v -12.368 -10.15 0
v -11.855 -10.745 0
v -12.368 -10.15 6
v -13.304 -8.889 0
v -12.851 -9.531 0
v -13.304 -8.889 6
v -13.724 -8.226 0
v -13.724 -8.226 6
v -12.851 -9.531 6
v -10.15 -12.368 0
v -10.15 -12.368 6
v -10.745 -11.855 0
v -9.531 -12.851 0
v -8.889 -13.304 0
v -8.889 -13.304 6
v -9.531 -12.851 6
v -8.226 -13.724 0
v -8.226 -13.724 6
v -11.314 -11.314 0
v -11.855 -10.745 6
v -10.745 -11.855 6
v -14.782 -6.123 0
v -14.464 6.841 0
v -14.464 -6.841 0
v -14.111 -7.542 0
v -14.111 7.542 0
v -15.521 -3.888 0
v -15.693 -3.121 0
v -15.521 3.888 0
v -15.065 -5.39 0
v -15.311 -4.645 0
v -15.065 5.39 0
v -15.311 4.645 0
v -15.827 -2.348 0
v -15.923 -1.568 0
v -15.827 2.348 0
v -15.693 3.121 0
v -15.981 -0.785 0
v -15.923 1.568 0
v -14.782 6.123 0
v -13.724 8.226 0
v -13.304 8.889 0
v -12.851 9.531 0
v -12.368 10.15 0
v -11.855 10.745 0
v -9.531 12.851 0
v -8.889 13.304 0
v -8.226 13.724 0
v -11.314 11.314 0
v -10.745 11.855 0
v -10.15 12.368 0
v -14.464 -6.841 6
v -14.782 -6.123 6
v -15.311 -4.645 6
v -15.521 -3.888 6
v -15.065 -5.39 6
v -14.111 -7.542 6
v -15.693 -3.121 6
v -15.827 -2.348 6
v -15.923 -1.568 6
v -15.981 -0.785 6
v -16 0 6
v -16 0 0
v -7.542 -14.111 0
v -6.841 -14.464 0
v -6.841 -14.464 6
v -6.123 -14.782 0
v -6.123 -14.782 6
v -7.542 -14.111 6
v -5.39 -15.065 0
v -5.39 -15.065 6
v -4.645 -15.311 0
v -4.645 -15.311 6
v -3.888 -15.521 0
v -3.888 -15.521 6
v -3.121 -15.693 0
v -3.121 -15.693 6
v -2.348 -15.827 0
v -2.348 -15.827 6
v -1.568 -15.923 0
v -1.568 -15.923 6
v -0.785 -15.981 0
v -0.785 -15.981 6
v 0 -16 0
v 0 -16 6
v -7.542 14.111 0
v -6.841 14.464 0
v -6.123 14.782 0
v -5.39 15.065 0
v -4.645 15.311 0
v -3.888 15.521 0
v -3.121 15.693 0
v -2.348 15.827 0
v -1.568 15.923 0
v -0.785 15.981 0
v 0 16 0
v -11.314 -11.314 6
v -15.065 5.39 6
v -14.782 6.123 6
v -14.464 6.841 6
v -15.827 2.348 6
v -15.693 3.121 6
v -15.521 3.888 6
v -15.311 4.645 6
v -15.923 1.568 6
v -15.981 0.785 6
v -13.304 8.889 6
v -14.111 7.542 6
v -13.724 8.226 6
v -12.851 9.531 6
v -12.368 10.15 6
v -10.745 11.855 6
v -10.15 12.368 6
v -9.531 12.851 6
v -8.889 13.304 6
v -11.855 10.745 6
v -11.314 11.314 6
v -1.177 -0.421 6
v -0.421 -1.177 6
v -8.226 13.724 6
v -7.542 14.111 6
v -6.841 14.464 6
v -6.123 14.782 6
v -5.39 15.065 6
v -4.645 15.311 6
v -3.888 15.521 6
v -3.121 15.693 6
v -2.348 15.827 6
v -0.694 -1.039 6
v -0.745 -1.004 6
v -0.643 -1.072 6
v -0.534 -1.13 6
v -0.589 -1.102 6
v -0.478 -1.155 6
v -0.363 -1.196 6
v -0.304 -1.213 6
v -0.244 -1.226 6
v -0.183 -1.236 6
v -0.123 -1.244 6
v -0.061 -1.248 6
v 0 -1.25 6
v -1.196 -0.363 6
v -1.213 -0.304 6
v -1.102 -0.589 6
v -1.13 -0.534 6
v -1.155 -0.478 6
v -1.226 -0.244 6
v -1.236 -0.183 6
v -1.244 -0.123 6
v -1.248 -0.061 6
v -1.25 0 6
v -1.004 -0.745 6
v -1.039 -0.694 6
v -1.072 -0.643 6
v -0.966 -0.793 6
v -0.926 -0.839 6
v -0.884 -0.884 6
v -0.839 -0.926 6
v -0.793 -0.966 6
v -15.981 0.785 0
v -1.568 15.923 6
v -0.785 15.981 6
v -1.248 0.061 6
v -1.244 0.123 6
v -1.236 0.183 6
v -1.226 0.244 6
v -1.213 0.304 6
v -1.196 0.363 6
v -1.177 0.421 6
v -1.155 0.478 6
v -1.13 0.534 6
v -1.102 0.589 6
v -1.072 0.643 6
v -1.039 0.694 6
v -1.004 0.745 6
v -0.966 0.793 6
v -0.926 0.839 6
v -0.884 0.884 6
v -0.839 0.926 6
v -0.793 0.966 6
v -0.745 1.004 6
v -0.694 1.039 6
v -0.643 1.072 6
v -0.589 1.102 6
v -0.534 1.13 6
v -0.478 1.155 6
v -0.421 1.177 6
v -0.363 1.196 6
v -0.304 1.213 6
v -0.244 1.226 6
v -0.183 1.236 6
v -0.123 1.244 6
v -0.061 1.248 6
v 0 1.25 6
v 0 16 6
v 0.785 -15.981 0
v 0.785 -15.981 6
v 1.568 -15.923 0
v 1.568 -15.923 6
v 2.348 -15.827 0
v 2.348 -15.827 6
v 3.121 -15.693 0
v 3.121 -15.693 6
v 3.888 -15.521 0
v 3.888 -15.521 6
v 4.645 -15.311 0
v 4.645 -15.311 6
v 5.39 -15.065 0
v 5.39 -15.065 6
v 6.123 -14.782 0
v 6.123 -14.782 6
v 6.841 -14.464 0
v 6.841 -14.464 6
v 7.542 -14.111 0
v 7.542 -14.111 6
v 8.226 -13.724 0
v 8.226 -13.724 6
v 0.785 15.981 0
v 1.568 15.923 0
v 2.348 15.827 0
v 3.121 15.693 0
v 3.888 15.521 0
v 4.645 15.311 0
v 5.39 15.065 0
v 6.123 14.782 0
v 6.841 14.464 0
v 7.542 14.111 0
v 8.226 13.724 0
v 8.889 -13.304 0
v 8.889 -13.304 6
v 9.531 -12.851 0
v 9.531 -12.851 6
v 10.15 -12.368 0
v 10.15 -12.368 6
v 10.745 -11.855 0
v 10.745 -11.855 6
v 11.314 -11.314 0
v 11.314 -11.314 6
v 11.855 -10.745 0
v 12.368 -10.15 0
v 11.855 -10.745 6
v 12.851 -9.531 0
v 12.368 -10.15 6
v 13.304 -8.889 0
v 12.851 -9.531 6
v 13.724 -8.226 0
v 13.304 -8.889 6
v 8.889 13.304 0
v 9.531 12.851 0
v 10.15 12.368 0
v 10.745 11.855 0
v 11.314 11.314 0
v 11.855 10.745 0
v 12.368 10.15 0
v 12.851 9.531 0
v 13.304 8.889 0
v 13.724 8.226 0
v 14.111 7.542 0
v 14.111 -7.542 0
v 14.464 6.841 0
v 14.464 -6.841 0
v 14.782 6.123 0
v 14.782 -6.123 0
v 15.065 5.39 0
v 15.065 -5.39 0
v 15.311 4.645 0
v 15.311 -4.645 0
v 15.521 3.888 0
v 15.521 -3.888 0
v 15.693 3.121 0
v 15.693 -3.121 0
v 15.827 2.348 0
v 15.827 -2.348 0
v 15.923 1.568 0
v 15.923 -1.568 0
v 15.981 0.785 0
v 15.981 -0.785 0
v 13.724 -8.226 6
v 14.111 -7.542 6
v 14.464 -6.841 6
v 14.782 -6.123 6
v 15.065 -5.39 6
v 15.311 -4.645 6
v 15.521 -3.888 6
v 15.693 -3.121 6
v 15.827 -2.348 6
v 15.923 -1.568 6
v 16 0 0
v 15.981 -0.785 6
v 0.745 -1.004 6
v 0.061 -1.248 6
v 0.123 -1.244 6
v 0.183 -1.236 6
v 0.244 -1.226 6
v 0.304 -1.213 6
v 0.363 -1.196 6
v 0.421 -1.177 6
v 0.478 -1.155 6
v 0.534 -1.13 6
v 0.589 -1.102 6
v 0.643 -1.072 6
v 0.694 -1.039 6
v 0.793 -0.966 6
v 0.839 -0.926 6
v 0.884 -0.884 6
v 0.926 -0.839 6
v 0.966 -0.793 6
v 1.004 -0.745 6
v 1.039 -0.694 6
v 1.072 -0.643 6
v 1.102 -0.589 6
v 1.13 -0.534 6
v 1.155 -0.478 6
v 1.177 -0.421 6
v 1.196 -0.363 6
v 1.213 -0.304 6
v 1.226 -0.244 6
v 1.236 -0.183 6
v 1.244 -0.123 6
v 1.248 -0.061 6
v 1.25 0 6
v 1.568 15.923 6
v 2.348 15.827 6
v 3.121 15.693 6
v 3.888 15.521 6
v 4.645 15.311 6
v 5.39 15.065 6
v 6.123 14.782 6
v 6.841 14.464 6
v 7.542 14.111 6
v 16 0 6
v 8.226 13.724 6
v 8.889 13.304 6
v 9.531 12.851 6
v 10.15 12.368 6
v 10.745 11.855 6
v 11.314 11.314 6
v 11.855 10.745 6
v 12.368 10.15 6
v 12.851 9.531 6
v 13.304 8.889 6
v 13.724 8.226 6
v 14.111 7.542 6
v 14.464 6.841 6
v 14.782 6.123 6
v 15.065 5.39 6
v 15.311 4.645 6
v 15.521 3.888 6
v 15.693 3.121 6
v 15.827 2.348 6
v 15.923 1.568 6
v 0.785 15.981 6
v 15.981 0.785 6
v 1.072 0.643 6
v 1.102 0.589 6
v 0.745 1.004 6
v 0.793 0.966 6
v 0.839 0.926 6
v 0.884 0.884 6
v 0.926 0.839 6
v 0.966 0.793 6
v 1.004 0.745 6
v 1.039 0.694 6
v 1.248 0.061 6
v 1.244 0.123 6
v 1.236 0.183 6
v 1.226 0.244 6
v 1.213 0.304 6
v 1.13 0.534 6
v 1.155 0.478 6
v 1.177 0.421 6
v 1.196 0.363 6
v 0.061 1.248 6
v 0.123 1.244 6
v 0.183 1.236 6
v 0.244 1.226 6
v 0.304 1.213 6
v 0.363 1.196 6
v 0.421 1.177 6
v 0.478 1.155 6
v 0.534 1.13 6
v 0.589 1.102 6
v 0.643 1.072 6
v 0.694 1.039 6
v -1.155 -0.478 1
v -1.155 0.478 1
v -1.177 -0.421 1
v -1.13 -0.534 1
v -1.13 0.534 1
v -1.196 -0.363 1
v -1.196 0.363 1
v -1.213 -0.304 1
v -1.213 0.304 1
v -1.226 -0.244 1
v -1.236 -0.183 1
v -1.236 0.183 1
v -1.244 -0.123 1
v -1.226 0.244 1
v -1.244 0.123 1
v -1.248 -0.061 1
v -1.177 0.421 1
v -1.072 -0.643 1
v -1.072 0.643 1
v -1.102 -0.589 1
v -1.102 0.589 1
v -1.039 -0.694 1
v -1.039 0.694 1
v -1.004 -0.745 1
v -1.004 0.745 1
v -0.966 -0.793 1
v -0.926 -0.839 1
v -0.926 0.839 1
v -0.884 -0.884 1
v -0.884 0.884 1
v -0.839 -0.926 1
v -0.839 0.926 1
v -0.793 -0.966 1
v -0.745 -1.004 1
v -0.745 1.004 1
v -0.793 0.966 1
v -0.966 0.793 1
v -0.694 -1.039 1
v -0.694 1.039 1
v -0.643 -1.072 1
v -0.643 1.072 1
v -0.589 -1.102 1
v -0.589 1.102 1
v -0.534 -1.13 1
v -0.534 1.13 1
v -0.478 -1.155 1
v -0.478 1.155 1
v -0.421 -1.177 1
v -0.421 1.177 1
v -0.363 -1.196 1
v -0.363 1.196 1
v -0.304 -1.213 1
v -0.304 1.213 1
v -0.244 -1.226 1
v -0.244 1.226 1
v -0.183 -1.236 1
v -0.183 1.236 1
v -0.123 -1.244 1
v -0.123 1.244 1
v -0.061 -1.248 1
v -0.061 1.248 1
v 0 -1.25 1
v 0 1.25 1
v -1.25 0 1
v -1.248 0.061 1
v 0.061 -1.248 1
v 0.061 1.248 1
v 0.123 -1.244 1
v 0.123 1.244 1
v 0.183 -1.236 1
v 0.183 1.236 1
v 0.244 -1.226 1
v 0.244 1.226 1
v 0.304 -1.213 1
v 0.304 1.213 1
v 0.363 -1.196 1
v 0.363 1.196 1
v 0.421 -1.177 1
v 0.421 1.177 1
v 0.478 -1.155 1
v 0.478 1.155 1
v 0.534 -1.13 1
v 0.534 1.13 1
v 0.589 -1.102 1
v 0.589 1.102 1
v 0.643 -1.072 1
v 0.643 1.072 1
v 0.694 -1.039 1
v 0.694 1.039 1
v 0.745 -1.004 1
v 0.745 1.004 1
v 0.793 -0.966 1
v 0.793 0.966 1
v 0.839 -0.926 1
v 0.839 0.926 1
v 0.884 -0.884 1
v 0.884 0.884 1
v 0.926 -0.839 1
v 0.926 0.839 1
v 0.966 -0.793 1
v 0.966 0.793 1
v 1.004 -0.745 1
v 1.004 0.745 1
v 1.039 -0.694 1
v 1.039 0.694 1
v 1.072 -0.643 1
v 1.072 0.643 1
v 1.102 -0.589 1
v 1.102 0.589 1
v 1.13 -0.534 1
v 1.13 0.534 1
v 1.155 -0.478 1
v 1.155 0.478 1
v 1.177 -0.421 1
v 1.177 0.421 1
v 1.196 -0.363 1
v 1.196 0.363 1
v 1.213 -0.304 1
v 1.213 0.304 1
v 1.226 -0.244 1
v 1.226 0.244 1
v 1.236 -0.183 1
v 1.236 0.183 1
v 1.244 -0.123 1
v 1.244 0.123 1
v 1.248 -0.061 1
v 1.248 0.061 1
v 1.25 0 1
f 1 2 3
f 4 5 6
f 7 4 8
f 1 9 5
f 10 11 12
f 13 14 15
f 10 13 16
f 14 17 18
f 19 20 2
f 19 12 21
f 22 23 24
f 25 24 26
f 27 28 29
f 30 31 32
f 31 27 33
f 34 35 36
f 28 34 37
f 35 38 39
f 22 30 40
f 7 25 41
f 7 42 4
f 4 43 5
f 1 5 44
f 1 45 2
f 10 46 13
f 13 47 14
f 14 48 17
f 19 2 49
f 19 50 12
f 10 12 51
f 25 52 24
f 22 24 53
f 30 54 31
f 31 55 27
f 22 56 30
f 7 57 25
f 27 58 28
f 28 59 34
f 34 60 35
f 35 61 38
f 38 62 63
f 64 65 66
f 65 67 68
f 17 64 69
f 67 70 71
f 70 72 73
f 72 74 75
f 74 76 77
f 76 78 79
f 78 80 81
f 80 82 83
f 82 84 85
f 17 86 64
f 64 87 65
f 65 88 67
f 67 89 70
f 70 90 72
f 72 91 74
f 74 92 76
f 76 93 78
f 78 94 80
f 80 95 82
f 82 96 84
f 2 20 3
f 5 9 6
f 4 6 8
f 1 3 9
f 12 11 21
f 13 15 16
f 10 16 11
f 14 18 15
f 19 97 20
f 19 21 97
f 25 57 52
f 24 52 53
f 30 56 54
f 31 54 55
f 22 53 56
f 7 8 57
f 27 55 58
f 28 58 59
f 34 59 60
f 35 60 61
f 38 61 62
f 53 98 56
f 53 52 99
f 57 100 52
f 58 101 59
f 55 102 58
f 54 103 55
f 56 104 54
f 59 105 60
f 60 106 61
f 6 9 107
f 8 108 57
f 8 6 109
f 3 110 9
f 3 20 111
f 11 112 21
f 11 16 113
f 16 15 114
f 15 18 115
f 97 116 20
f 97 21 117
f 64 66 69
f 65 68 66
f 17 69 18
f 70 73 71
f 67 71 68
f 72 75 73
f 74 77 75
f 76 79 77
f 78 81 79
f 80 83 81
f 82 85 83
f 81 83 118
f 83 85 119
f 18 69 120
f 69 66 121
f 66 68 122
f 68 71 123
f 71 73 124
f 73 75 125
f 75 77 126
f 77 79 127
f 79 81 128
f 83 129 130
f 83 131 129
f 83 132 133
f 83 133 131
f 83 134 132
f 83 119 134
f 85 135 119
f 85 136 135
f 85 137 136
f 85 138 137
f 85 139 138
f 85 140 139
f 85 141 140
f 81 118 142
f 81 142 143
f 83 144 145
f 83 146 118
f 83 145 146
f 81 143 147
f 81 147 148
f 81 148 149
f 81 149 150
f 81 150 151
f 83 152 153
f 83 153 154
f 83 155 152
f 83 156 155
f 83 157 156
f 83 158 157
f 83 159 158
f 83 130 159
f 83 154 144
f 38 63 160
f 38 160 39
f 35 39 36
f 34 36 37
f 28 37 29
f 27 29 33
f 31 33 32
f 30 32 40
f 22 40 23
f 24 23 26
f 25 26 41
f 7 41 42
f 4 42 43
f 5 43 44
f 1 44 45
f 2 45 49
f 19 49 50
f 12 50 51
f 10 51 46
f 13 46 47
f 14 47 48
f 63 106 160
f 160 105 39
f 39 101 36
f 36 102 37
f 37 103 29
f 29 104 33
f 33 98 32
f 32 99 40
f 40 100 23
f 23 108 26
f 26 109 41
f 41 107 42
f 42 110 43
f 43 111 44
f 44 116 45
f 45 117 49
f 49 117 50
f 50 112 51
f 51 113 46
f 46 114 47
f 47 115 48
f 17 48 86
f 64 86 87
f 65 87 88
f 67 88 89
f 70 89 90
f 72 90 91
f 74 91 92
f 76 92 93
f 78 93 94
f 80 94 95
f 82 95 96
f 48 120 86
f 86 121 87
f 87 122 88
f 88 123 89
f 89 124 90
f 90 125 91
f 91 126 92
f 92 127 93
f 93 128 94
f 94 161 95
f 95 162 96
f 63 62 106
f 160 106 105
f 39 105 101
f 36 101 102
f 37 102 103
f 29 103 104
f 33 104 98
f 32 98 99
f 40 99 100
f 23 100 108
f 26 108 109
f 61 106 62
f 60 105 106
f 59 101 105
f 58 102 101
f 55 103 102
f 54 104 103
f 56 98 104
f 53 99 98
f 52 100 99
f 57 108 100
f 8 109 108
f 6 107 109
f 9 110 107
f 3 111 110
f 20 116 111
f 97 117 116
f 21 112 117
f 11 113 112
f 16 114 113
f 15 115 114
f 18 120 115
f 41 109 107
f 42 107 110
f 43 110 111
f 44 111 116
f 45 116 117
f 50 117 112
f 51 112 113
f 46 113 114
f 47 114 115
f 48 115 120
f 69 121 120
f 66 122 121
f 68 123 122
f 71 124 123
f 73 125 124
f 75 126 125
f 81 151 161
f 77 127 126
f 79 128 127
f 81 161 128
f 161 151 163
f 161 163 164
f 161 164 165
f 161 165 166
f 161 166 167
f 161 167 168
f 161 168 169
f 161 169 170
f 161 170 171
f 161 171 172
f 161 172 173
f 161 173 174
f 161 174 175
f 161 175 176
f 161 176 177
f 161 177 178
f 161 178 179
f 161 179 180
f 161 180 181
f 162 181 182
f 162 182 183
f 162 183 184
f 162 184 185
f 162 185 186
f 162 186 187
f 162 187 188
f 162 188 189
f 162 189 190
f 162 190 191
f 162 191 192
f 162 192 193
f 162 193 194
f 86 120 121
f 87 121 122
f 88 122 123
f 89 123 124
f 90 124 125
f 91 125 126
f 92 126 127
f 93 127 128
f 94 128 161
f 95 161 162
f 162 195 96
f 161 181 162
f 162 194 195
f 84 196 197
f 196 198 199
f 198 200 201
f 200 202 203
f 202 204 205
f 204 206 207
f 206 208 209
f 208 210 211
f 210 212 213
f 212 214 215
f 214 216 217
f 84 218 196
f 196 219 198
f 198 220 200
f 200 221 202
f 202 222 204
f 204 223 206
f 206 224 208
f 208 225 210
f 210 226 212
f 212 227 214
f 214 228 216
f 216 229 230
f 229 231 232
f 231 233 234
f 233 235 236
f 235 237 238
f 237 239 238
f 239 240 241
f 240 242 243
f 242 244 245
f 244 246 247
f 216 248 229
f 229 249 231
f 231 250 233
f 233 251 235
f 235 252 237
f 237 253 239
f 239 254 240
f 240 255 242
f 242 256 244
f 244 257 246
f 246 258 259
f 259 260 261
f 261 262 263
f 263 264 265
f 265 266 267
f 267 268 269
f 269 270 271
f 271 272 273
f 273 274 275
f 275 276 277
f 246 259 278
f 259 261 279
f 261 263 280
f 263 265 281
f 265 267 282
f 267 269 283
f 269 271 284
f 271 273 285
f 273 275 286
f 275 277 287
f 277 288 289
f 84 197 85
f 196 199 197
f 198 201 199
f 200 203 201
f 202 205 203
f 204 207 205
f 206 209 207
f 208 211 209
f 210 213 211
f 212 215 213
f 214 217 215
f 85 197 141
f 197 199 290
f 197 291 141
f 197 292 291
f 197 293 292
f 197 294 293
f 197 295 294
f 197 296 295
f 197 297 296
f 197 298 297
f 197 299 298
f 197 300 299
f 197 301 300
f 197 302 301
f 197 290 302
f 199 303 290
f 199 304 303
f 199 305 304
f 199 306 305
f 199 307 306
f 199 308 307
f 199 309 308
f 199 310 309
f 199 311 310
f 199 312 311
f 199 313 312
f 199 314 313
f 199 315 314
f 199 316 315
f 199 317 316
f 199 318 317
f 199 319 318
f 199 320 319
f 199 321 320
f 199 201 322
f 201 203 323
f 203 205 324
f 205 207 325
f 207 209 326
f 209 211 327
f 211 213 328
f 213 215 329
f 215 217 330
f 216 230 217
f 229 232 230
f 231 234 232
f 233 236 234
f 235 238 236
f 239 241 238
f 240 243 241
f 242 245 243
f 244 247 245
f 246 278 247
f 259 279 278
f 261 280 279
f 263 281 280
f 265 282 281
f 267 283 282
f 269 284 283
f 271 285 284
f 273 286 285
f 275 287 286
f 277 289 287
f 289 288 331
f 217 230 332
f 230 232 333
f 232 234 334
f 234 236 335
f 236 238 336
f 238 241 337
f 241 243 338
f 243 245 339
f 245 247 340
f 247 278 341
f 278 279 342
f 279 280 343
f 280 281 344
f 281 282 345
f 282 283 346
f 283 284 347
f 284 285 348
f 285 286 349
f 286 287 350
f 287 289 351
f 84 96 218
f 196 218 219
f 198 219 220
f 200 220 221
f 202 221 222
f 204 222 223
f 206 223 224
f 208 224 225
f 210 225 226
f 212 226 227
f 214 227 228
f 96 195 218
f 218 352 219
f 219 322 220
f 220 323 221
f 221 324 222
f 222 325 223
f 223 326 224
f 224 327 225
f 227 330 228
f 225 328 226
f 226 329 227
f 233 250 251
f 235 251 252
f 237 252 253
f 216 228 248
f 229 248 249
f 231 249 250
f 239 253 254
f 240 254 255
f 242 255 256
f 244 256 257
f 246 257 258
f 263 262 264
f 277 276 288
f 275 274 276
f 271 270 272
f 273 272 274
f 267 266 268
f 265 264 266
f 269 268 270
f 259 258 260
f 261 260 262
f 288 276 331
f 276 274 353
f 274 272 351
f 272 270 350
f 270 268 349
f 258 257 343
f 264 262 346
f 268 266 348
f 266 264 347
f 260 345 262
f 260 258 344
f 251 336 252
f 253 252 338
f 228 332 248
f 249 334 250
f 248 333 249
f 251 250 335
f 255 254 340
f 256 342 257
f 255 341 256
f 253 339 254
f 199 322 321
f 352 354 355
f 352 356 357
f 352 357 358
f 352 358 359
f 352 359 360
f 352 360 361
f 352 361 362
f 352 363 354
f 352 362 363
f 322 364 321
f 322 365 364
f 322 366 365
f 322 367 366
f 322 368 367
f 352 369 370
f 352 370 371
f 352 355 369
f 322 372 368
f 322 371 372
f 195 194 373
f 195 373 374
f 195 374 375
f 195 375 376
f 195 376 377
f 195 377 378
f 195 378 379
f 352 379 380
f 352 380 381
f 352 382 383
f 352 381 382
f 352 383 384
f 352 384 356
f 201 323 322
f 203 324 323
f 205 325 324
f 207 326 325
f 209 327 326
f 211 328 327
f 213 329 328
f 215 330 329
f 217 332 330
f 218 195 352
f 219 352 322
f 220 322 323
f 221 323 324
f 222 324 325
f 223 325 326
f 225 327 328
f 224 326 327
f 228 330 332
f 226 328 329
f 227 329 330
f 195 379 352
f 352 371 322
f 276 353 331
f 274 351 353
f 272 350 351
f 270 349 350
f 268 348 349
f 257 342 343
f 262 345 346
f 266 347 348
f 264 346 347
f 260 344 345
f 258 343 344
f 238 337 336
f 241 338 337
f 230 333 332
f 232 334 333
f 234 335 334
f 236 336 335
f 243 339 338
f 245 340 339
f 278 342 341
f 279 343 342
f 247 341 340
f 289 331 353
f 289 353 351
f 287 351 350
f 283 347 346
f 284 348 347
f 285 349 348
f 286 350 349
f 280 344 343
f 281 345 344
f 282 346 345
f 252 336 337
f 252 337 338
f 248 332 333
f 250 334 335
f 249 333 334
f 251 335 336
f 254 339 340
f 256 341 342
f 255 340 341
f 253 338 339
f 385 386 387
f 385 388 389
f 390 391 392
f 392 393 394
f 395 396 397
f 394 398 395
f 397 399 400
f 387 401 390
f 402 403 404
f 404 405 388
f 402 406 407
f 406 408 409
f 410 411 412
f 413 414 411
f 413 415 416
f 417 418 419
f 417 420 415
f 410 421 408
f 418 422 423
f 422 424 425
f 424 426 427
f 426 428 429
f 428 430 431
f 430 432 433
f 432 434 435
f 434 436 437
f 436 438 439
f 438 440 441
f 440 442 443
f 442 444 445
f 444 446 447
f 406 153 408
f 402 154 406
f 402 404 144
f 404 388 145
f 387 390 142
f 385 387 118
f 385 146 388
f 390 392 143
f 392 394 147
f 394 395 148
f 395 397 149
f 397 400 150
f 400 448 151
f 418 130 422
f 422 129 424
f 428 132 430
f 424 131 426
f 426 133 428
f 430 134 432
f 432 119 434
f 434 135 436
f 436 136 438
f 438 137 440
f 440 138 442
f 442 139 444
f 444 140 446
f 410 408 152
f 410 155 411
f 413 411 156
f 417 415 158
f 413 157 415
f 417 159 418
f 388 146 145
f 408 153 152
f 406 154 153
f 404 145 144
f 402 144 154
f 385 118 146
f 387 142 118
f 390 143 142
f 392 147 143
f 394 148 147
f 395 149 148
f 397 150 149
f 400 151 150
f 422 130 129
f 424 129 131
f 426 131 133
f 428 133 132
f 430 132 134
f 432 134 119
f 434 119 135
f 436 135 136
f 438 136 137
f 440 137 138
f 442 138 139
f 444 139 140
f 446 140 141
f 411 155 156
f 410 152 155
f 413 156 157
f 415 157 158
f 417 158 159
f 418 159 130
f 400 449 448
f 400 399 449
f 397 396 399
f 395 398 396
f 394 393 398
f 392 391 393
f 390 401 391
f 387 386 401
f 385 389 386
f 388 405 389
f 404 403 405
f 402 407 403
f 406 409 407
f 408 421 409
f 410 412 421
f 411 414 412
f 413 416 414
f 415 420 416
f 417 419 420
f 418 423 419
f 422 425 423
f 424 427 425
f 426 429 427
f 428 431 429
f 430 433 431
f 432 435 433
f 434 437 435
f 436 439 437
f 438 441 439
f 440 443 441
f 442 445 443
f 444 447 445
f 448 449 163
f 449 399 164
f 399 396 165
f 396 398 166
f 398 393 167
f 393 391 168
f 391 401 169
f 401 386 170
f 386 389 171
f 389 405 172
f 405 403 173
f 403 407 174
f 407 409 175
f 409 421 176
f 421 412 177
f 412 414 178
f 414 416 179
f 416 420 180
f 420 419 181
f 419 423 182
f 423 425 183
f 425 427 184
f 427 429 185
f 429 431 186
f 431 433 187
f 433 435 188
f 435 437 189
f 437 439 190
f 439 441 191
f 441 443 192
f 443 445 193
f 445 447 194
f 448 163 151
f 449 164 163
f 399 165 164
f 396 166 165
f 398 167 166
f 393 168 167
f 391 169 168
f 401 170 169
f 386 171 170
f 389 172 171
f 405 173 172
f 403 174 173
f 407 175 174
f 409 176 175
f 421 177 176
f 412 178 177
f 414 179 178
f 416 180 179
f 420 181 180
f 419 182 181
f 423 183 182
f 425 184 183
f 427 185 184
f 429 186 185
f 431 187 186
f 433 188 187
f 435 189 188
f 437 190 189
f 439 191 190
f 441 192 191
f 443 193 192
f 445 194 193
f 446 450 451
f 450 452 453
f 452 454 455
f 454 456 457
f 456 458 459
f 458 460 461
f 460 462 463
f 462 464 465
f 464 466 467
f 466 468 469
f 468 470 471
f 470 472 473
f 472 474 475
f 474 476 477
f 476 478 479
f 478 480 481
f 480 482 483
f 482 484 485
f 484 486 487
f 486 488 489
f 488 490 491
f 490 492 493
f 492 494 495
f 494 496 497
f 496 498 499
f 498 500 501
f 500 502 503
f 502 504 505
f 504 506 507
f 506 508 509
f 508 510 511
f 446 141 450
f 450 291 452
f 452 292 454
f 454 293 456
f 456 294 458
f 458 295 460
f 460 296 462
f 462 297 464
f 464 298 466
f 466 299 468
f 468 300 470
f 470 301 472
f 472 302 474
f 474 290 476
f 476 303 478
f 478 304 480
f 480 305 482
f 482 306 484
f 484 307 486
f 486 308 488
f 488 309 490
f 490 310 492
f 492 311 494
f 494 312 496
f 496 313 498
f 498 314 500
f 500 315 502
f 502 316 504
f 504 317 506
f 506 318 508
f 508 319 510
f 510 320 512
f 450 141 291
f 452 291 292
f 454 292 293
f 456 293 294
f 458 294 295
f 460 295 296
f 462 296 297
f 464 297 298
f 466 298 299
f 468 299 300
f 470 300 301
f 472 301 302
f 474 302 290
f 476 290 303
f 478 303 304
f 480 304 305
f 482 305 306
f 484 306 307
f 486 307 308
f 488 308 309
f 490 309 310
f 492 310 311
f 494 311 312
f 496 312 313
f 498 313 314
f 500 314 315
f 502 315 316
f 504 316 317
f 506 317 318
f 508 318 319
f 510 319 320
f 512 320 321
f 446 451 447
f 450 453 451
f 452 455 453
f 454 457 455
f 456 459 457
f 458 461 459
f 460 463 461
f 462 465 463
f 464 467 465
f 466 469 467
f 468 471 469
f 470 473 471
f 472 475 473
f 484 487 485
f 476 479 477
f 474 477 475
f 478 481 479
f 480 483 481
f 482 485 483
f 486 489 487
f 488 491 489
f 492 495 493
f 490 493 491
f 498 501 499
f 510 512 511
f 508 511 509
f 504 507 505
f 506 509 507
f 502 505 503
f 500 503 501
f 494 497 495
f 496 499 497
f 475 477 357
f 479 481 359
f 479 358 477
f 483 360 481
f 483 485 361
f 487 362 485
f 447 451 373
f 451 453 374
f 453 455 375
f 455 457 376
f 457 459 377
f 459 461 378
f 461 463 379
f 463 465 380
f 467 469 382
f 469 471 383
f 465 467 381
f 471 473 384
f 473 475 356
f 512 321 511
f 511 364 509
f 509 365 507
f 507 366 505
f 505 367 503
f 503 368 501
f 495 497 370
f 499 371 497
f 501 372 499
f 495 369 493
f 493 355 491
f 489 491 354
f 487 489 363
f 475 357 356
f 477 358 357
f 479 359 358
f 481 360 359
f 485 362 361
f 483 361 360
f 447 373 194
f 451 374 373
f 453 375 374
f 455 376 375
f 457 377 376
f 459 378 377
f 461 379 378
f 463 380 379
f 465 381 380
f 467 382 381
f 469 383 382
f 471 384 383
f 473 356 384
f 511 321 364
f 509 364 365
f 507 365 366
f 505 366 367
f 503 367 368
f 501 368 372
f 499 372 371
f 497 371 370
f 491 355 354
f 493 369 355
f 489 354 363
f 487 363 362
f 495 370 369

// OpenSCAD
// SPDX-License-Identifier: CC-BY-4.0
// SPDX-FileCopyrightText: 2026 Todd Sayre
// Adhesive mounting disc — a flat adhesive face and an upward blind pilot bore.
// Screw an openGrid tile into the plastic; stick the closed face to the TV.
// All dimensions are millimetres. Sized for 30 mm adhesive pads;
// screw and bore defaults are examples, not fit-tested hardware.
// Print closed face down, bore up. Vertical walls need no supports or bridges.

// ===== MEASURE THESE =====

// Adhesive disc outside diameter (mm) — outside jaws across the disc,
// 6 in caliper. The printed disc extends beyond it by adhesive_margin per side.
adhesive_disc_diameter = 30;

// Screw outside diameter over the threads (mm) — outside jaws on the threaded
// shank, 6 in caliper. The pilot bore must be smaller so the threads can bite.
screw_diameter = 3;

// ===== TUNE THESE =====

// Printed margin beyond the adhesive disc, radially on each side (mm).
adhesive_margin = 1;

// Nominal pilot-bore diameter (mm). Choose for the screw and printed material;
// no fit allowance is added. Check a trial print before mounting anything.
bore_diameter = 2.5;

// Depth from the open face to the flat bore floor (mm). Allow room for the
// ENTIRE screw tip projecting behind the tile, with clearance above the floor.
bore_depth = 5;

// Solid plastic under the bore (mm). At least 1 mm is enforced below.
// This is a geometric minimum, not a stop that a self-drilling screw cannot pierce.
floor_thickness = 1;

$fn = 128;

// ===== DERIVED =====
outer_diameter = adhesive_disc_diameter + 2 * adhesive_margin;
thickness = bore_depth + floor_thickness;
// Radial material remaining at the screw's full thread diameter.
screw_wall = (outer_diameter - screw_diameter) / 2;
// Extend only above the mouth; never extend the cut below the bore floor.
cut_overlap = 0.01;

assert(adhesive_disc_diameter > 0, "adhesive_disc_diameter must be positive");
assert(adhesive_margin > 0, "adhesive_margin must be positive so the printed disc is wider than the adhesive");
assert(bore_diameter > 0, "bore_diameter must be positive to leave a pilot bore");
assert(screw_diameter > bore_diameter, "screw_diameter must exceed bore_diameter so the threads can bite");
assert(screw_wall > 0, "outer_diameter must exceed screw_diameter to leave material around the screw");
assert(bore_depth > 0, "bore_depth must be positive");
assert(floor_thickness >= 1, "floor_thickness must be at least 1 mm to keep a solid bottom under the blind bore");

echo(str("outer diameter = ", outer_diameter, " mm"));
echo(str("overall thickness = ", thickness, " mm"));
echo(str("pilot bore = ", bore_diameter, " mm diameter x ", bore_depth, " mm deep"));
echo(str("solid floor = ", floor_thickness, " mm (minimum 1 mm)"));
echo(str("radial wall at screw thread diameter = ", screw_wall, " mm"));

module adhesive_mounting_disc() {
  difference() {
    cylinder(d = outer_diameter, h = thickness);
    translate([0, 0, floor_thickness])
      cylinder(d = bore_diameter, h = bore_depth + cut_overlap);
  }
}

adhesive_mounting_disc();
